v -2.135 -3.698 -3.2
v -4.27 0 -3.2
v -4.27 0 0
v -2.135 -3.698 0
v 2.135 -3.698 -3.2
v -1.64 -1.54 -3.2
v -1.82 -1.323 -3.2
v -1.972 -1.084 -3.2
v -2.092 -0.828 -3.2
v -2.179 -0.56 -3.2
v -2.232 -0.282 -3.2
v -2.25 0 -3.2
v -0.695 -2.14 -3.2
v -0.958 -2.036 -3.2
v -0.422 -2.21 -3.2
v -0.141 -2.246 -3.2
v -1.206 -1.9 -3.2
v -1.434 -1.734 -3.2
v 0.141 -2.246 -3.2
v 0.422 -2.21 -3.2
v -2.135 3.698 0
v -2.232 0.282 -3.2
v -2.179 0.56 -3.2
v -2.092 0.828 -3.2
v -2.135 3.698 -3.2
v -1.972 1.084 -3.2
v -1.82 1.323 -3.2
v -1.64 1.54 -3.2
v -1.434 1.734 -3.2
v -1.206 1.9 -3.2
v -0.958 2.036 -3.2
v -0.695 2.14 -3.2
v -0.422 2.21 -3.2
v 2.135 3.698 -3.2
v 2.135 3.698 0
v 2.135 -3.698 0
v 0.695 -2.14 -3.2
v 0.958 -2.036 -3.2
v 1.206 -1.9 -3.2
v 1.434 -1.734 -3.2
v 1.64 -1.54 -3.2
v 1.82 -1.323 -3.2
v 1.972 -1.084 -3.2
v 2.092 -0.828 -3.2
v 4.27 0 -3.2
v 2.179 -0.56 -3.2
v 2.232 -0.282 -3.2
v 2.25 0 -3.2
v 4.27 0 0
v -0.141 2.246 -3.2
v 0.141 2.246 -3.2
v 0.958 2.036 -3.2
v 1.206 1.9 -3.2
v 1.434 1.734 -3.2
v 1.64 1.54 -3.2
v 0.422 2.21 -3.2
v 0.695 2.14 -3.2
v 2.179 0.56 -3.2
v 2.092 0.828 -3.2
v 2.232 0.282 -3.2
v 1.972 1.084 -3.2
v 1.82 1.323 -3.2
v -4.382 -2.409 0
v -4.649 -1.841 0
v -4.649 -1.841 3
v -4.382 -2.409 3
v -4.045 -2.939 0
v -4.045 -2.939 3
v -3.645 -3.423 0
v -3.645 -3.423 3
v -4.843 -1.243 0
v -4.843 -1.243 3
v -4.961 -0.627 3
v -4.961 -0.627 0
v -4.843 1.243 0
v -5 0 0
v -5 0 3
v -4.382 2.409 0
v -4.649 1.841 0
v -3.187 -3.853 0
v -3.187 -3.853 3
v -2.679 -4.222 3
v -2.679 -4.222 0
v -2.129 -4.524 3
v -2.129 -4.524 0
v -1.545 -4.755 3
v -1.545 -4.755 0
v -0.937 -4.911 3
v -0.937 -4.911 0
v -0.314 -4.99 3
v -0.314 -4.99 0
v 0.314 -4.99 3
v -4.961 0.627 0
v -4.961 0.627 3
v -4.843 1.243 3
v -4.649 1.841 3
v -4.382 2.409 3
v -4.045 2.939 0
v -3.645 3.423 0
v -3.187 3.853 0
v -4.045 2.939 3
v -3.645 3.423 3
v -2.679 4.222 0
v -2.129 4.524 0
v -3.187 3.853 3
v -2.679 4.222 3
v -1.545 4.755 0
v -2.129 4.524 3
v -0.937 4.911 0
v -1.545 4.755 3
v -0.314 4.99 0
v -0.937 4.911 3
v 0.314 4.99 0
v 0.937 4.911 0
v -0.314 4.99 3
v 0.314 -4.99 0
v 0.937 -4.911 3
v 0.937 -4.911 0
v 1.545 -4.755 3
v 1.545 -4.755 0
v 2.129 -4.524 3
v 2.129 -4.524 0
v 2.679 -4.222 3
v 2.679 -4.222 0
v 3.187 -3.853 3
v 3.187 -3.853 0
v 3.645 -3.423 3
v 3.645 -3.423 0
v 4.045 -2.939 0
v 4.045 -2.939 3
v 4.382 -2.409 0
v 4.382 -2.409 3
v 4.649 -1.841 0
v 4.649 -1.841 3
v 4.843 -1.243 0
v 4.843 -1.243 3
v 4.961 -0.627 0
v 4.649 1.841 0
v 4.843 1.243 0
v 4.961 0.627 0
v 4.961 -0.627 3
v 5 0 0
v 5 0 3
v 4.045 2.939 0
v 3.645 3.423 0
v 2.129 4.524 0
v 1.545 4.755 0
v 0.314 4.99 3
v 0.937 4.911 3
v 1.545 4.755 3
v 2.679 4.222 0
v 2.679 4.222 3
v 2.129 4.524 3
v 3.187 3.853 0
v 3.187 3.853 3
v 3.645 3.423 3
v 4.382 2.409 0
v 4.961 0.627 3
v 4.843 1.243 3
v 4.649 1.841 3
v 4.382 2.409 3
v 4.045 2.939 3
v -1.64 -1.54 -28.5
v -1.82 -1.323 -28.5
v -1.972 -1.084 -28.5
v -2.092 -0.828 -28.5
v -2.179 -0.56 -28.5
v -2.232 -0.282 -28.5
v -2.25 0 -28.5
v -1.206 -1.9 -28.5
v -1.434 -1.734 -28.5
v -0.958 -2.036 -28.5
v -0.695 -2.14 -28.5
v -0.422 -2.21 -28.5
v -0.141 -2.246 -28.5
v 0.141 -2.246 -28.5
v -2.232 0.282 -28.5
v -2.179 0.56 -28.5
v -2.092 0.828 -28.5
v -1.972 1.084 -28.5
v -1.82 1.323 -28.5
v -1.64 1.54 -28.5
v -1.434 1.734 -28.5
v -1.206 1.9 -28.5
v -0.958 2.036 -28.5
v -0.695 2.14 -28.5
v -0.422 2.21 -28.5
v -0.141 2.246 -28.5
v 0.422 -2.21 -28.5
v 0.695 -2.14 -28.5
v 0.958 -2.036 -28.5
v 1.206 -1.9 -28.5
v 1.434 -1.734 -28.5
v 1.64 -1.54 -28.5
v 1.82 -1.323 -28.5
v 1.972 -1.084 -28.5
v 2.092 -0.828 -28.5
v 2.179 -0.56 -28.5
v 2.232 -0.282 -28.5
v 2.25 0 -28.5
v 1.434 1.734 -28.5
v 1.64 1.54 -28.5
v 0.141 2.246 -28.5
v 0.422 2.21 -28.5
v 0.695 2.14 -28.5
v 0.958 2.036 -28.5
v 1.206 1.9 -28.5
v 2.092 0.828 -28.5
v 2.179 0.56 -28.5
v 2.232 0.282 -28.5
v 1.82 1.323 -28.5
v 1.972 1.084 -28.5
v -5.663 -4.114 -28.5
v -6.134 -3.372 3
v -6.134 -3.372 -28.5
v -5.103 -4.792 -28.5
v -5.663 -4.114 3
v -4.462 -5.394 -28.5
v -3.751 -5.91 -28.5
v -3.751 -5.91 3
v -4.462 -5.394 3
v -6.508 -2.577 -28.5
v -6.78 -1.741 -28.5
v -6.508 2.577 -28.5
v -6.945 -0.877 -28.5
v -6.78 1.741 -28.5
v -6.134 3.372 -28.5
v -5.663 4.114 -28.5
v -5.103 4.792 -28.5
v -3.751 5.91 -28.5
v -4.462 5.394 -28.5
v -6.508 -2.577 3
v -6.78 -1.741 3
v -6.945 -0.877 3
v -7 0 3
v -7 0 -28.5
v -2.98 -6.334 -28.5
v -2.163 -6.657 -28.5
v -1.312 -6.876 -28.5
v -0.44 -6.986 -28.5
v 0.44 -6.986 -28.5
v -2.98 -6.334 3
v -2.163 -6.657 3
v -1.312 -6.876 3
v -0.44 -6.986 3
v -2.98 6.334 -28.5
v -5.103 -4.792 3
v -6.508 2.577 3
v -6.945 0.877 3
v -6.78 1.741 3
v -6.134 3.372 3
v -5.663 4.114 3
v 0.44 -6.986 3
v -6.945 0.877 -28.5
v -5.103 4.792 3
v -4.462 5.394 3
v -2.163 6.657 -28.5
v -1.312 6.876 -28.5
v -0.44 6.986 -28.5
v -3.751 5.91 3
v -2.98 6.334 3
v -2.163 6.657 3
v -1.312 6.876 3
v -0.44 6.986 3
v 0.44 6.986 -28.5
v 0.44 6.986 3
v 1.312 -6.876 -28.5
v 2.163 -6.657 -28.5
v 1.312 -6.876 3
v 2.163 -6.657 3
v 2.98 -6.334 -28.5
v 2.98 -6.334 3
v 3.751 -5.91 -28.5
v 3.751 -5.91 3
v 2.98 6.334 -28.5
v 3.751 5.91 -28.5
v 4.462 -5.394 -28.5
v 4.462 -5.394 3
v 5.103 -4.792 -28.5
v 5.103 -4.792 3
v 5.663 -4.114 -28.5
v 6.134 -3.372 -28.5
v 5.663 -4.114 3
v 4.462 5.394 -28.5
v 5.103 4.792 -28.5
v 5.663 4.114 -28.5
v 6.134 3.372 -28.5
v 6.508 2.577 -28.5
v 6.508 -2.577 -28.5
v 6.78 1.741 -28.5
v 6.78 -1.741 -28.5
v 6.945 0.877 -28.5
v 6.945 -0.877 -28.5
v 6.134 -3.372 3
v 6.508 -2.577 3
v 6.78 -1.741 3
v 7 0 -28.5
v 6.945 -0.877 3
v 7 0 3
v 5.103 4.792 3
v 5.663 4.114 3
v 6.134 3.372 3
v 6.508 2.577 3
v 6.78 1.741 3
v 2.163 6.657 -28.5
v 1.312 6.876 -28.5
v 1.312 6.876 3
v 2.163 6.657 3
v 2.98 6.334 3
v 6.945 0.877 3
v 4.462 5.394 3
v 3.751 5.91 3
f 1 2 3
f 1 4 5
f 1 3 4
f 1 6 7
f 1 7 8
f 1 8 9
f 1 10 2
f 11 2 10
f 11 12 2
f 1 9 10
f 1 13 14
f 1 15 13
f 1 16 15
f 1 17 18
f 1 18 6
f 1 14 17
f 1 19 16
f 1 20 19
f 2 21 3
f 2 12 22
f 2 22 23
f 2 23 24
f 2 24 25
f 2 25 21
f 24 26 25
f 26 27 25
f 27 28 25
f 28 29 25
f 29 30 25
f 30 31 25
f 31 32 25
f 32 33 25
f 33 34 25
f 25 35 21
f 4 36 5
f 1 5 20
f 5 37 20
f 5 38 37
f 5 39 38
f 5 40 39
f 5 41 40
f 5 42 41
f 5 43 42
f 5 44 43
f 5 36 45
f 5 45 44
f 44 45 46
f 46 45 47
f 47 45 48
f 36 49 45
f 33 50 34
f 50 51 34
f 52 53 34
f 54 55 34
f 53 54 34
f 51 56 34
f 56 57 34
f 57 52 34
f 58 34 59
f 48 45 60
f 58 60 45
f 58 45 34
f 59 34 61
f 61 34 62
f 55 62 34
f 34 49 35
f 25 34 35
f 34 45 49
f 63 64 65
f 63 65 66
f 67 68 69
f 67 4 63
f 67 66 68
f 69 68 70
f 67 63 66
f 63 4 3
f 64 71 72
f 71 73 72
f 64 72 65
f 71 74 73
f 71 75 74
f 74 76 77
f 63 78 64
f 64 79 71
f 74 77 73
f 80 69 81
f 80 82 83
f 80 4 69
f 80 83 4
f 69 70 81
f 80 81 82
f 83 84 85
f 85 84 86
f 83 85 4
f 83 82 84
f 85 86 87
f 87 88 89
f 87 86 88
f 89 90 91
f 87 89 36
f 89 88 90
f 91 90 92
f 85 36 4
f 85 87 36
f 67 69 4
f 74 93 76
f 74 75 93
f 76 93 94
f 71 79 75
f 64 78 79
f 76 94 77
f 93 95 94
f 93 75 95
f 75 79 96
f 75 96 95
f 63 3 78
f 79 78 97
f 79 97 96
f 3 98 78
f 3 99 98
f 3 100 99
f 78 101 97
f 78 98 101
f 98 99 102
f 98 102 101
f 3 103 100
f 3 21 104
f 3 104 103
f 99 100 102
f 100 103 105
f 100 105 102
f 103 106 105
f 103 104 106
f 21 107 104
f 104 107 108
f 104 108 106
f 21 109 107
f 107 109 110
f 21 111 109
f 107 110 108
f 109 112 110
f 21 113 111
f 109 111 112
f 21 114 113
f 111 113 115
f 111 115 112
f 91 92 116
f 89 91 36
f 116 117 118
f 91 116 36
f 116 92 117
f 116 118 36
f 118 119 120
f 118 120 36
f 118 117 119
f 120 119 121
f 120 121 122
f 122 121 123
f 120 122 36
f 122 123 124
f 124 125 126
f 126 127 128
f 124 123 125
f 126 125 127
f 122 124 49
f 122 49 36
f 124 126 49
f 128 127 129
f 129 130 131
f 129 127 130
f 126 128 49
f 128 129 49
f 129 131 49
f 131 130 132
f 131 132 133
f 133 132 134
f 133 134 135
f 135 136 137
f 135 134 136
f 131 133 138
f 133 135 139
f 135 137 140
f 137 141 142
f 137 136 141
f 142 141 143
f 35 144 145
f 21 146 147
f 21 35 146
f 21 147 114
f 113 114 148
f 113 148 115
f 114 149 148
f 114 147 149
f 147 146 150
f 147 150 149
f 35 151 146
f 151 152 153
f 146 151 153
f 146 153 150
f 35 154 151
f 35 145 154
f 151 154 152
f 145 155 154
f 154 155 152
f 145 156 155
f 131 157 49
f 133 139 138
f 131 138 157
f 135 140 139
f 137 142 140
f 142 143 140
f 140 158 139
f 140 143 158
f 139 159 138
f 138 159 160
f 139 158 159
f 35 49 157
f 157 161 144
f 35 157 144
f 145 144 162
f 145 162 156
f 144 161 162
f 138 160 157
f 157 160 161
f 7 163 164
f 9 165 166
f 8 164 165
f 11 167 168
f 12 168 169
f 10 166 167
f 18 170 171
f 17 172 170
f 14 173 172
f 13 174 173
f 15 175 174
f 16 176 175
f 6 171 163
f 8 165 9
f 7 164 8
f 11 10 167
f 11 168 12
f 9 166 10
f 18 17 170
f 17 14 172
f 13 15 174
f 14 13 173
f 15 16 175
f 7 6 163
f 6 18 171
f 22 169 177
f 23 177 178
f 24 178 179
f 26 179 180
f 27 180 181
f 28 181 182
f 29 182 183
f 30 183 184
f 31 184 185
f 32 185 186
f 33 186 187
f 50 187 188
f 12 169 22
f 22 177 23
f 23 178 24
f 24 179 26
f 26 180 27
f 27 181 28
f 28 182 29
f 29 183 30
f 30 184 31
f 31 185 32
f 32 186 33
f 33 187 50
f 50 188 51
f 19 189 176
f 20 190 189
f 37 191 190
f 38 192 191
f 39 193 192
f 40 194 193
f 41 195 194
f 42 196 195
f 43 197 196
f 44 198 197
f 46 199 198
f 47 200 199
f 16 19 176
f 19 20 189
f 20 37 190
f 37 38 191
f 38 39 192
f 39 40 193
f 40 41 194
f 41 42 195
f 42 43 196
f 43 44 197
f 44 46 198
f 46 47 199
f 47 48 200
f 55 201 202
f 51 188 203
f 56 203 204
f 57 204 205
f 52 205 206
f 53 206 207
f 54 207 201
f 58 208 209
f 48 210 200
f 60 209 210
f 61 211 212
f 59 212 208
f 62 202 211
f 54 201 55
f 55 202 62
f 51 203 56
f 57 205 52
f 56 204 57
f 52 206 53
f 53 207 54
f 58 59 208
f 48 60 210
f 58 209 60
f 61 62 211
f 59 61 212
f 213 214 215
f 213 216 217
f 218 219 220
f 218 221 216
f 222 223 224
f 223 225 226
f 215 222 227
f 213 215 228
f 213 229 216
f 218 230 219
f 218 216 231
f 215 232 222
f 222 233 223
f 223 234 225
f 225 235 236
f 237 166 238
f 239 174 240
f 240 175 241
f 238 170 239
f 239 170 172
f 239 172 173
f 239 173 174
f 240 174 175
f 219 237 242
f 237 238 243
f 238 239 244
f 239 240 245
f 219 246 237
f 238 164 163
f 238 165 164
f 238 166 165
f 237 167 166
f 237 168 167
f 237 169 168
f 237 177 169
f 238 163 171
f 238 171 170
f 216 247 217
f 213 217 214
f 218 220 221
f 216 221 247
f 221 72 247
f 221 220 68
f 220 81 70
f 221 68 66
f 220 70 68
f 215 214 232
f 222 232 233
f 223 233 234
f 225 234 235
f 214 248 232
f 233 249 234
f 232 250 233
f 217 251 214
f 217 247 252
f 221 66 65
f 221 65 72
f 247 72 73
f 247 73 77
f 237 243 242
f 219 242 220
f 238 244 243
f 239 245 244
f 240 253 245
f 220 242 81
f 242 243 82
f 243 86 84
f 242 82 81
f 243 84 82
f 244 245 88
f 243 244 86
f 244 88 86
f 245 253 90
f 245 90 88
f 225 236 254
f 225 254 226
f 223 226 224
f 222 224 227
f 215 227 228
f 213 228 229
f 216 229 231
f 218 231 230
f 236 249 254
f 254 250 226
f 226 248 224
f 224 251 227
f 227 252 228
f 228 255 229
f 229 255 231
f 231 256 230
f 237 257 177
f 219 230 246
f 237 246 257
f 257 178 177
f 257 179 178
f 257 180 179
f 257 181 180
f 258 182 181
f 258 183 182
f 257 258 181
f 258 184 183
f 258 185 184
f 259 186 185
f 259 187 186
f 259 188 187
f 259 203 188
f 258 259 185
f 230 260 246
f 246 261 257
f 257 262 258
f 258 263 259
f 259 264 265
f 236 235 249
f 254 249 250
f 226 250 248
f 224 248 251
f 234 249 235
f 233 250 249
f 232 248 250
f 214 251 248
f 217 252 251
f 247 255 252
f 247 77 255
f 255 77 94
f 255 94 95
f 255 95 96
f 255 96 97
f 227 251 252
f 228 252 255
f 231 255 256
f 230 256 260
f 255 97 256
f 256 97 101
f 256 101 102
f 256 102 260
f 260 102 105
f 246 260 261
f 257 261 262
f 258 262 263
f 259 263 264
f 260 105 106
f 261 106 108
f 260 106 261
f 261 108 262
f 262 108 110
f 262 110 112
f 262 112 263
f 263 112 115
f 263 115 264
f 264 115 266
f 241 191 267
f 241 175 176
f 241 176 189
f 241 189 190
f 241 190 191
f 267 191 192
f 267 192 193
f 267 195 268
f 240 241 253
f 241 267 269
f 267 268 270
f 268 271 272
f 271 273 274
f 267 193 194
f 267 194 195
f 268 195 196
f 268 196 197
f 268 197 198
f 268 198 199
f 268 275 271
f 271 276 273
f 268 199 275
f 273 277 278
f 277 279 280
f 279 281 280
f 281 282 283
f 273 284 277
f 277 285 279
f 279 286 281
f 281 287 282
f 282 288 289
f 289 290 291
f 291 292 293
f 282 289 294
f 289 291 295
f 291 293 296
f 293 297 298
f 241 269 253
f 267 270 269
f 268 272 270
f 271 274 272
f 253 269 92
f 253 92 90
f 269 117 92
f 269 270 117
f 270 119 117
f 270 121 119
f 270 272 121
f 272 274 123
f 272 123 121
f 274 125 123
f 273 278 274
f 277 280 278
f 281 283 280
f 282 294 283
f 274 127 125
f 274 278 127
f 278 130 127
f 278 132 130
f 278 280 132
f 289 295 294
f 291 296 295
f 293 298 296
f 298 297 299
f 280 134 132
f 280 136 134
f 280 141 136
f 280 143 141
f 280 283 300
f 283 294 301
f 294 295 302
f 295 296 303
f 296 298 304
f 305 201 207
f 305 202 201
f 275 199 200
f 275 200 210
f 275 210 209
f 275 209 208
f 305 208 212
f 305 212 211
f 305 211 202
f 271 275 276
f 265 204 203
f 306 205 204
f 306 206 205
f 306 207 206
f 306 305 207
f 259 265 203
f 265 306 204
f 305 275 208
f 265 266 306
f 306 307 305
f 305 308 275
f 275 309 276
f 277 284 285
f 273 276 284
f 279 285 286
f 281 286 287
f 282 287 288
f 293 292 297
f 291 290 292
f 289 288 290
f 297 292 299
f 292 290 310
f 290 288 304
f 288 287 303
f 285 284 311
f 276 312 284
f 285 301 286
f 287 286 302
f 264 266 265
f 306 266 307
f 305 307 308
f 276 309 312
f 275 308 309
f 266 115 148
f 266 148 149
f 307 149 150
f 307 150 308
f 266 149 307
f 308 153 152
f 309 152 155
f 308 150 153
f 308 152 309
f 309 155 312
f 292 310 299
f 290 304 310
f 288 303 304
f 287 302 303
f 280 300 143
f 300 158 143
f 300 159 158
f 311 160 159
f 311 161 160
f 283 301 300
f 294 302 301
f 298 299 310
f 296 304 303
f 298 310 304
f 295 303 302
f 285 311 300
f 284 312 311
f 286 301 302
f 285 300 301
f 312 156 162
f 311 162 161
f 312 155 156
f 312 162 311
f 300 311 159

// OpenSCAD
$fn = 50;


difference() {
	union() {
		translate(v = [0, 0, -28.5000000000]) {
			cylinder(h = 31.5000000000, r = 7.0000000000);
		}
	}
	union() {
		translate(v = [0, 0, 0]) {
			rotate(a = [0, 0, 0]) {
				difference() {
					union() {
						translate(v = [0, 0, -3.2000000000]) {
							linear_extrude(height = 3.2000000000) {
								polygon(points = [[4.2698000000, 0.0000000000], [2.1349000000, 3.6977552691], [-2.1349000000, 3.6977552691], [-4.2698000000, 0.0000000000], [-2.1349000000, -3.6977552691], [2.1349000000, -3.6977552691]]);
							}
						}
					}
					union();
				}
			}
		}
		#cylinder(h = 3, r = 5.0000000000);
		#translate(v = [0, 0, -100.0000000000]) {
			cylinder(h = 200, r = 2.2500000000);
		}
	}
}
